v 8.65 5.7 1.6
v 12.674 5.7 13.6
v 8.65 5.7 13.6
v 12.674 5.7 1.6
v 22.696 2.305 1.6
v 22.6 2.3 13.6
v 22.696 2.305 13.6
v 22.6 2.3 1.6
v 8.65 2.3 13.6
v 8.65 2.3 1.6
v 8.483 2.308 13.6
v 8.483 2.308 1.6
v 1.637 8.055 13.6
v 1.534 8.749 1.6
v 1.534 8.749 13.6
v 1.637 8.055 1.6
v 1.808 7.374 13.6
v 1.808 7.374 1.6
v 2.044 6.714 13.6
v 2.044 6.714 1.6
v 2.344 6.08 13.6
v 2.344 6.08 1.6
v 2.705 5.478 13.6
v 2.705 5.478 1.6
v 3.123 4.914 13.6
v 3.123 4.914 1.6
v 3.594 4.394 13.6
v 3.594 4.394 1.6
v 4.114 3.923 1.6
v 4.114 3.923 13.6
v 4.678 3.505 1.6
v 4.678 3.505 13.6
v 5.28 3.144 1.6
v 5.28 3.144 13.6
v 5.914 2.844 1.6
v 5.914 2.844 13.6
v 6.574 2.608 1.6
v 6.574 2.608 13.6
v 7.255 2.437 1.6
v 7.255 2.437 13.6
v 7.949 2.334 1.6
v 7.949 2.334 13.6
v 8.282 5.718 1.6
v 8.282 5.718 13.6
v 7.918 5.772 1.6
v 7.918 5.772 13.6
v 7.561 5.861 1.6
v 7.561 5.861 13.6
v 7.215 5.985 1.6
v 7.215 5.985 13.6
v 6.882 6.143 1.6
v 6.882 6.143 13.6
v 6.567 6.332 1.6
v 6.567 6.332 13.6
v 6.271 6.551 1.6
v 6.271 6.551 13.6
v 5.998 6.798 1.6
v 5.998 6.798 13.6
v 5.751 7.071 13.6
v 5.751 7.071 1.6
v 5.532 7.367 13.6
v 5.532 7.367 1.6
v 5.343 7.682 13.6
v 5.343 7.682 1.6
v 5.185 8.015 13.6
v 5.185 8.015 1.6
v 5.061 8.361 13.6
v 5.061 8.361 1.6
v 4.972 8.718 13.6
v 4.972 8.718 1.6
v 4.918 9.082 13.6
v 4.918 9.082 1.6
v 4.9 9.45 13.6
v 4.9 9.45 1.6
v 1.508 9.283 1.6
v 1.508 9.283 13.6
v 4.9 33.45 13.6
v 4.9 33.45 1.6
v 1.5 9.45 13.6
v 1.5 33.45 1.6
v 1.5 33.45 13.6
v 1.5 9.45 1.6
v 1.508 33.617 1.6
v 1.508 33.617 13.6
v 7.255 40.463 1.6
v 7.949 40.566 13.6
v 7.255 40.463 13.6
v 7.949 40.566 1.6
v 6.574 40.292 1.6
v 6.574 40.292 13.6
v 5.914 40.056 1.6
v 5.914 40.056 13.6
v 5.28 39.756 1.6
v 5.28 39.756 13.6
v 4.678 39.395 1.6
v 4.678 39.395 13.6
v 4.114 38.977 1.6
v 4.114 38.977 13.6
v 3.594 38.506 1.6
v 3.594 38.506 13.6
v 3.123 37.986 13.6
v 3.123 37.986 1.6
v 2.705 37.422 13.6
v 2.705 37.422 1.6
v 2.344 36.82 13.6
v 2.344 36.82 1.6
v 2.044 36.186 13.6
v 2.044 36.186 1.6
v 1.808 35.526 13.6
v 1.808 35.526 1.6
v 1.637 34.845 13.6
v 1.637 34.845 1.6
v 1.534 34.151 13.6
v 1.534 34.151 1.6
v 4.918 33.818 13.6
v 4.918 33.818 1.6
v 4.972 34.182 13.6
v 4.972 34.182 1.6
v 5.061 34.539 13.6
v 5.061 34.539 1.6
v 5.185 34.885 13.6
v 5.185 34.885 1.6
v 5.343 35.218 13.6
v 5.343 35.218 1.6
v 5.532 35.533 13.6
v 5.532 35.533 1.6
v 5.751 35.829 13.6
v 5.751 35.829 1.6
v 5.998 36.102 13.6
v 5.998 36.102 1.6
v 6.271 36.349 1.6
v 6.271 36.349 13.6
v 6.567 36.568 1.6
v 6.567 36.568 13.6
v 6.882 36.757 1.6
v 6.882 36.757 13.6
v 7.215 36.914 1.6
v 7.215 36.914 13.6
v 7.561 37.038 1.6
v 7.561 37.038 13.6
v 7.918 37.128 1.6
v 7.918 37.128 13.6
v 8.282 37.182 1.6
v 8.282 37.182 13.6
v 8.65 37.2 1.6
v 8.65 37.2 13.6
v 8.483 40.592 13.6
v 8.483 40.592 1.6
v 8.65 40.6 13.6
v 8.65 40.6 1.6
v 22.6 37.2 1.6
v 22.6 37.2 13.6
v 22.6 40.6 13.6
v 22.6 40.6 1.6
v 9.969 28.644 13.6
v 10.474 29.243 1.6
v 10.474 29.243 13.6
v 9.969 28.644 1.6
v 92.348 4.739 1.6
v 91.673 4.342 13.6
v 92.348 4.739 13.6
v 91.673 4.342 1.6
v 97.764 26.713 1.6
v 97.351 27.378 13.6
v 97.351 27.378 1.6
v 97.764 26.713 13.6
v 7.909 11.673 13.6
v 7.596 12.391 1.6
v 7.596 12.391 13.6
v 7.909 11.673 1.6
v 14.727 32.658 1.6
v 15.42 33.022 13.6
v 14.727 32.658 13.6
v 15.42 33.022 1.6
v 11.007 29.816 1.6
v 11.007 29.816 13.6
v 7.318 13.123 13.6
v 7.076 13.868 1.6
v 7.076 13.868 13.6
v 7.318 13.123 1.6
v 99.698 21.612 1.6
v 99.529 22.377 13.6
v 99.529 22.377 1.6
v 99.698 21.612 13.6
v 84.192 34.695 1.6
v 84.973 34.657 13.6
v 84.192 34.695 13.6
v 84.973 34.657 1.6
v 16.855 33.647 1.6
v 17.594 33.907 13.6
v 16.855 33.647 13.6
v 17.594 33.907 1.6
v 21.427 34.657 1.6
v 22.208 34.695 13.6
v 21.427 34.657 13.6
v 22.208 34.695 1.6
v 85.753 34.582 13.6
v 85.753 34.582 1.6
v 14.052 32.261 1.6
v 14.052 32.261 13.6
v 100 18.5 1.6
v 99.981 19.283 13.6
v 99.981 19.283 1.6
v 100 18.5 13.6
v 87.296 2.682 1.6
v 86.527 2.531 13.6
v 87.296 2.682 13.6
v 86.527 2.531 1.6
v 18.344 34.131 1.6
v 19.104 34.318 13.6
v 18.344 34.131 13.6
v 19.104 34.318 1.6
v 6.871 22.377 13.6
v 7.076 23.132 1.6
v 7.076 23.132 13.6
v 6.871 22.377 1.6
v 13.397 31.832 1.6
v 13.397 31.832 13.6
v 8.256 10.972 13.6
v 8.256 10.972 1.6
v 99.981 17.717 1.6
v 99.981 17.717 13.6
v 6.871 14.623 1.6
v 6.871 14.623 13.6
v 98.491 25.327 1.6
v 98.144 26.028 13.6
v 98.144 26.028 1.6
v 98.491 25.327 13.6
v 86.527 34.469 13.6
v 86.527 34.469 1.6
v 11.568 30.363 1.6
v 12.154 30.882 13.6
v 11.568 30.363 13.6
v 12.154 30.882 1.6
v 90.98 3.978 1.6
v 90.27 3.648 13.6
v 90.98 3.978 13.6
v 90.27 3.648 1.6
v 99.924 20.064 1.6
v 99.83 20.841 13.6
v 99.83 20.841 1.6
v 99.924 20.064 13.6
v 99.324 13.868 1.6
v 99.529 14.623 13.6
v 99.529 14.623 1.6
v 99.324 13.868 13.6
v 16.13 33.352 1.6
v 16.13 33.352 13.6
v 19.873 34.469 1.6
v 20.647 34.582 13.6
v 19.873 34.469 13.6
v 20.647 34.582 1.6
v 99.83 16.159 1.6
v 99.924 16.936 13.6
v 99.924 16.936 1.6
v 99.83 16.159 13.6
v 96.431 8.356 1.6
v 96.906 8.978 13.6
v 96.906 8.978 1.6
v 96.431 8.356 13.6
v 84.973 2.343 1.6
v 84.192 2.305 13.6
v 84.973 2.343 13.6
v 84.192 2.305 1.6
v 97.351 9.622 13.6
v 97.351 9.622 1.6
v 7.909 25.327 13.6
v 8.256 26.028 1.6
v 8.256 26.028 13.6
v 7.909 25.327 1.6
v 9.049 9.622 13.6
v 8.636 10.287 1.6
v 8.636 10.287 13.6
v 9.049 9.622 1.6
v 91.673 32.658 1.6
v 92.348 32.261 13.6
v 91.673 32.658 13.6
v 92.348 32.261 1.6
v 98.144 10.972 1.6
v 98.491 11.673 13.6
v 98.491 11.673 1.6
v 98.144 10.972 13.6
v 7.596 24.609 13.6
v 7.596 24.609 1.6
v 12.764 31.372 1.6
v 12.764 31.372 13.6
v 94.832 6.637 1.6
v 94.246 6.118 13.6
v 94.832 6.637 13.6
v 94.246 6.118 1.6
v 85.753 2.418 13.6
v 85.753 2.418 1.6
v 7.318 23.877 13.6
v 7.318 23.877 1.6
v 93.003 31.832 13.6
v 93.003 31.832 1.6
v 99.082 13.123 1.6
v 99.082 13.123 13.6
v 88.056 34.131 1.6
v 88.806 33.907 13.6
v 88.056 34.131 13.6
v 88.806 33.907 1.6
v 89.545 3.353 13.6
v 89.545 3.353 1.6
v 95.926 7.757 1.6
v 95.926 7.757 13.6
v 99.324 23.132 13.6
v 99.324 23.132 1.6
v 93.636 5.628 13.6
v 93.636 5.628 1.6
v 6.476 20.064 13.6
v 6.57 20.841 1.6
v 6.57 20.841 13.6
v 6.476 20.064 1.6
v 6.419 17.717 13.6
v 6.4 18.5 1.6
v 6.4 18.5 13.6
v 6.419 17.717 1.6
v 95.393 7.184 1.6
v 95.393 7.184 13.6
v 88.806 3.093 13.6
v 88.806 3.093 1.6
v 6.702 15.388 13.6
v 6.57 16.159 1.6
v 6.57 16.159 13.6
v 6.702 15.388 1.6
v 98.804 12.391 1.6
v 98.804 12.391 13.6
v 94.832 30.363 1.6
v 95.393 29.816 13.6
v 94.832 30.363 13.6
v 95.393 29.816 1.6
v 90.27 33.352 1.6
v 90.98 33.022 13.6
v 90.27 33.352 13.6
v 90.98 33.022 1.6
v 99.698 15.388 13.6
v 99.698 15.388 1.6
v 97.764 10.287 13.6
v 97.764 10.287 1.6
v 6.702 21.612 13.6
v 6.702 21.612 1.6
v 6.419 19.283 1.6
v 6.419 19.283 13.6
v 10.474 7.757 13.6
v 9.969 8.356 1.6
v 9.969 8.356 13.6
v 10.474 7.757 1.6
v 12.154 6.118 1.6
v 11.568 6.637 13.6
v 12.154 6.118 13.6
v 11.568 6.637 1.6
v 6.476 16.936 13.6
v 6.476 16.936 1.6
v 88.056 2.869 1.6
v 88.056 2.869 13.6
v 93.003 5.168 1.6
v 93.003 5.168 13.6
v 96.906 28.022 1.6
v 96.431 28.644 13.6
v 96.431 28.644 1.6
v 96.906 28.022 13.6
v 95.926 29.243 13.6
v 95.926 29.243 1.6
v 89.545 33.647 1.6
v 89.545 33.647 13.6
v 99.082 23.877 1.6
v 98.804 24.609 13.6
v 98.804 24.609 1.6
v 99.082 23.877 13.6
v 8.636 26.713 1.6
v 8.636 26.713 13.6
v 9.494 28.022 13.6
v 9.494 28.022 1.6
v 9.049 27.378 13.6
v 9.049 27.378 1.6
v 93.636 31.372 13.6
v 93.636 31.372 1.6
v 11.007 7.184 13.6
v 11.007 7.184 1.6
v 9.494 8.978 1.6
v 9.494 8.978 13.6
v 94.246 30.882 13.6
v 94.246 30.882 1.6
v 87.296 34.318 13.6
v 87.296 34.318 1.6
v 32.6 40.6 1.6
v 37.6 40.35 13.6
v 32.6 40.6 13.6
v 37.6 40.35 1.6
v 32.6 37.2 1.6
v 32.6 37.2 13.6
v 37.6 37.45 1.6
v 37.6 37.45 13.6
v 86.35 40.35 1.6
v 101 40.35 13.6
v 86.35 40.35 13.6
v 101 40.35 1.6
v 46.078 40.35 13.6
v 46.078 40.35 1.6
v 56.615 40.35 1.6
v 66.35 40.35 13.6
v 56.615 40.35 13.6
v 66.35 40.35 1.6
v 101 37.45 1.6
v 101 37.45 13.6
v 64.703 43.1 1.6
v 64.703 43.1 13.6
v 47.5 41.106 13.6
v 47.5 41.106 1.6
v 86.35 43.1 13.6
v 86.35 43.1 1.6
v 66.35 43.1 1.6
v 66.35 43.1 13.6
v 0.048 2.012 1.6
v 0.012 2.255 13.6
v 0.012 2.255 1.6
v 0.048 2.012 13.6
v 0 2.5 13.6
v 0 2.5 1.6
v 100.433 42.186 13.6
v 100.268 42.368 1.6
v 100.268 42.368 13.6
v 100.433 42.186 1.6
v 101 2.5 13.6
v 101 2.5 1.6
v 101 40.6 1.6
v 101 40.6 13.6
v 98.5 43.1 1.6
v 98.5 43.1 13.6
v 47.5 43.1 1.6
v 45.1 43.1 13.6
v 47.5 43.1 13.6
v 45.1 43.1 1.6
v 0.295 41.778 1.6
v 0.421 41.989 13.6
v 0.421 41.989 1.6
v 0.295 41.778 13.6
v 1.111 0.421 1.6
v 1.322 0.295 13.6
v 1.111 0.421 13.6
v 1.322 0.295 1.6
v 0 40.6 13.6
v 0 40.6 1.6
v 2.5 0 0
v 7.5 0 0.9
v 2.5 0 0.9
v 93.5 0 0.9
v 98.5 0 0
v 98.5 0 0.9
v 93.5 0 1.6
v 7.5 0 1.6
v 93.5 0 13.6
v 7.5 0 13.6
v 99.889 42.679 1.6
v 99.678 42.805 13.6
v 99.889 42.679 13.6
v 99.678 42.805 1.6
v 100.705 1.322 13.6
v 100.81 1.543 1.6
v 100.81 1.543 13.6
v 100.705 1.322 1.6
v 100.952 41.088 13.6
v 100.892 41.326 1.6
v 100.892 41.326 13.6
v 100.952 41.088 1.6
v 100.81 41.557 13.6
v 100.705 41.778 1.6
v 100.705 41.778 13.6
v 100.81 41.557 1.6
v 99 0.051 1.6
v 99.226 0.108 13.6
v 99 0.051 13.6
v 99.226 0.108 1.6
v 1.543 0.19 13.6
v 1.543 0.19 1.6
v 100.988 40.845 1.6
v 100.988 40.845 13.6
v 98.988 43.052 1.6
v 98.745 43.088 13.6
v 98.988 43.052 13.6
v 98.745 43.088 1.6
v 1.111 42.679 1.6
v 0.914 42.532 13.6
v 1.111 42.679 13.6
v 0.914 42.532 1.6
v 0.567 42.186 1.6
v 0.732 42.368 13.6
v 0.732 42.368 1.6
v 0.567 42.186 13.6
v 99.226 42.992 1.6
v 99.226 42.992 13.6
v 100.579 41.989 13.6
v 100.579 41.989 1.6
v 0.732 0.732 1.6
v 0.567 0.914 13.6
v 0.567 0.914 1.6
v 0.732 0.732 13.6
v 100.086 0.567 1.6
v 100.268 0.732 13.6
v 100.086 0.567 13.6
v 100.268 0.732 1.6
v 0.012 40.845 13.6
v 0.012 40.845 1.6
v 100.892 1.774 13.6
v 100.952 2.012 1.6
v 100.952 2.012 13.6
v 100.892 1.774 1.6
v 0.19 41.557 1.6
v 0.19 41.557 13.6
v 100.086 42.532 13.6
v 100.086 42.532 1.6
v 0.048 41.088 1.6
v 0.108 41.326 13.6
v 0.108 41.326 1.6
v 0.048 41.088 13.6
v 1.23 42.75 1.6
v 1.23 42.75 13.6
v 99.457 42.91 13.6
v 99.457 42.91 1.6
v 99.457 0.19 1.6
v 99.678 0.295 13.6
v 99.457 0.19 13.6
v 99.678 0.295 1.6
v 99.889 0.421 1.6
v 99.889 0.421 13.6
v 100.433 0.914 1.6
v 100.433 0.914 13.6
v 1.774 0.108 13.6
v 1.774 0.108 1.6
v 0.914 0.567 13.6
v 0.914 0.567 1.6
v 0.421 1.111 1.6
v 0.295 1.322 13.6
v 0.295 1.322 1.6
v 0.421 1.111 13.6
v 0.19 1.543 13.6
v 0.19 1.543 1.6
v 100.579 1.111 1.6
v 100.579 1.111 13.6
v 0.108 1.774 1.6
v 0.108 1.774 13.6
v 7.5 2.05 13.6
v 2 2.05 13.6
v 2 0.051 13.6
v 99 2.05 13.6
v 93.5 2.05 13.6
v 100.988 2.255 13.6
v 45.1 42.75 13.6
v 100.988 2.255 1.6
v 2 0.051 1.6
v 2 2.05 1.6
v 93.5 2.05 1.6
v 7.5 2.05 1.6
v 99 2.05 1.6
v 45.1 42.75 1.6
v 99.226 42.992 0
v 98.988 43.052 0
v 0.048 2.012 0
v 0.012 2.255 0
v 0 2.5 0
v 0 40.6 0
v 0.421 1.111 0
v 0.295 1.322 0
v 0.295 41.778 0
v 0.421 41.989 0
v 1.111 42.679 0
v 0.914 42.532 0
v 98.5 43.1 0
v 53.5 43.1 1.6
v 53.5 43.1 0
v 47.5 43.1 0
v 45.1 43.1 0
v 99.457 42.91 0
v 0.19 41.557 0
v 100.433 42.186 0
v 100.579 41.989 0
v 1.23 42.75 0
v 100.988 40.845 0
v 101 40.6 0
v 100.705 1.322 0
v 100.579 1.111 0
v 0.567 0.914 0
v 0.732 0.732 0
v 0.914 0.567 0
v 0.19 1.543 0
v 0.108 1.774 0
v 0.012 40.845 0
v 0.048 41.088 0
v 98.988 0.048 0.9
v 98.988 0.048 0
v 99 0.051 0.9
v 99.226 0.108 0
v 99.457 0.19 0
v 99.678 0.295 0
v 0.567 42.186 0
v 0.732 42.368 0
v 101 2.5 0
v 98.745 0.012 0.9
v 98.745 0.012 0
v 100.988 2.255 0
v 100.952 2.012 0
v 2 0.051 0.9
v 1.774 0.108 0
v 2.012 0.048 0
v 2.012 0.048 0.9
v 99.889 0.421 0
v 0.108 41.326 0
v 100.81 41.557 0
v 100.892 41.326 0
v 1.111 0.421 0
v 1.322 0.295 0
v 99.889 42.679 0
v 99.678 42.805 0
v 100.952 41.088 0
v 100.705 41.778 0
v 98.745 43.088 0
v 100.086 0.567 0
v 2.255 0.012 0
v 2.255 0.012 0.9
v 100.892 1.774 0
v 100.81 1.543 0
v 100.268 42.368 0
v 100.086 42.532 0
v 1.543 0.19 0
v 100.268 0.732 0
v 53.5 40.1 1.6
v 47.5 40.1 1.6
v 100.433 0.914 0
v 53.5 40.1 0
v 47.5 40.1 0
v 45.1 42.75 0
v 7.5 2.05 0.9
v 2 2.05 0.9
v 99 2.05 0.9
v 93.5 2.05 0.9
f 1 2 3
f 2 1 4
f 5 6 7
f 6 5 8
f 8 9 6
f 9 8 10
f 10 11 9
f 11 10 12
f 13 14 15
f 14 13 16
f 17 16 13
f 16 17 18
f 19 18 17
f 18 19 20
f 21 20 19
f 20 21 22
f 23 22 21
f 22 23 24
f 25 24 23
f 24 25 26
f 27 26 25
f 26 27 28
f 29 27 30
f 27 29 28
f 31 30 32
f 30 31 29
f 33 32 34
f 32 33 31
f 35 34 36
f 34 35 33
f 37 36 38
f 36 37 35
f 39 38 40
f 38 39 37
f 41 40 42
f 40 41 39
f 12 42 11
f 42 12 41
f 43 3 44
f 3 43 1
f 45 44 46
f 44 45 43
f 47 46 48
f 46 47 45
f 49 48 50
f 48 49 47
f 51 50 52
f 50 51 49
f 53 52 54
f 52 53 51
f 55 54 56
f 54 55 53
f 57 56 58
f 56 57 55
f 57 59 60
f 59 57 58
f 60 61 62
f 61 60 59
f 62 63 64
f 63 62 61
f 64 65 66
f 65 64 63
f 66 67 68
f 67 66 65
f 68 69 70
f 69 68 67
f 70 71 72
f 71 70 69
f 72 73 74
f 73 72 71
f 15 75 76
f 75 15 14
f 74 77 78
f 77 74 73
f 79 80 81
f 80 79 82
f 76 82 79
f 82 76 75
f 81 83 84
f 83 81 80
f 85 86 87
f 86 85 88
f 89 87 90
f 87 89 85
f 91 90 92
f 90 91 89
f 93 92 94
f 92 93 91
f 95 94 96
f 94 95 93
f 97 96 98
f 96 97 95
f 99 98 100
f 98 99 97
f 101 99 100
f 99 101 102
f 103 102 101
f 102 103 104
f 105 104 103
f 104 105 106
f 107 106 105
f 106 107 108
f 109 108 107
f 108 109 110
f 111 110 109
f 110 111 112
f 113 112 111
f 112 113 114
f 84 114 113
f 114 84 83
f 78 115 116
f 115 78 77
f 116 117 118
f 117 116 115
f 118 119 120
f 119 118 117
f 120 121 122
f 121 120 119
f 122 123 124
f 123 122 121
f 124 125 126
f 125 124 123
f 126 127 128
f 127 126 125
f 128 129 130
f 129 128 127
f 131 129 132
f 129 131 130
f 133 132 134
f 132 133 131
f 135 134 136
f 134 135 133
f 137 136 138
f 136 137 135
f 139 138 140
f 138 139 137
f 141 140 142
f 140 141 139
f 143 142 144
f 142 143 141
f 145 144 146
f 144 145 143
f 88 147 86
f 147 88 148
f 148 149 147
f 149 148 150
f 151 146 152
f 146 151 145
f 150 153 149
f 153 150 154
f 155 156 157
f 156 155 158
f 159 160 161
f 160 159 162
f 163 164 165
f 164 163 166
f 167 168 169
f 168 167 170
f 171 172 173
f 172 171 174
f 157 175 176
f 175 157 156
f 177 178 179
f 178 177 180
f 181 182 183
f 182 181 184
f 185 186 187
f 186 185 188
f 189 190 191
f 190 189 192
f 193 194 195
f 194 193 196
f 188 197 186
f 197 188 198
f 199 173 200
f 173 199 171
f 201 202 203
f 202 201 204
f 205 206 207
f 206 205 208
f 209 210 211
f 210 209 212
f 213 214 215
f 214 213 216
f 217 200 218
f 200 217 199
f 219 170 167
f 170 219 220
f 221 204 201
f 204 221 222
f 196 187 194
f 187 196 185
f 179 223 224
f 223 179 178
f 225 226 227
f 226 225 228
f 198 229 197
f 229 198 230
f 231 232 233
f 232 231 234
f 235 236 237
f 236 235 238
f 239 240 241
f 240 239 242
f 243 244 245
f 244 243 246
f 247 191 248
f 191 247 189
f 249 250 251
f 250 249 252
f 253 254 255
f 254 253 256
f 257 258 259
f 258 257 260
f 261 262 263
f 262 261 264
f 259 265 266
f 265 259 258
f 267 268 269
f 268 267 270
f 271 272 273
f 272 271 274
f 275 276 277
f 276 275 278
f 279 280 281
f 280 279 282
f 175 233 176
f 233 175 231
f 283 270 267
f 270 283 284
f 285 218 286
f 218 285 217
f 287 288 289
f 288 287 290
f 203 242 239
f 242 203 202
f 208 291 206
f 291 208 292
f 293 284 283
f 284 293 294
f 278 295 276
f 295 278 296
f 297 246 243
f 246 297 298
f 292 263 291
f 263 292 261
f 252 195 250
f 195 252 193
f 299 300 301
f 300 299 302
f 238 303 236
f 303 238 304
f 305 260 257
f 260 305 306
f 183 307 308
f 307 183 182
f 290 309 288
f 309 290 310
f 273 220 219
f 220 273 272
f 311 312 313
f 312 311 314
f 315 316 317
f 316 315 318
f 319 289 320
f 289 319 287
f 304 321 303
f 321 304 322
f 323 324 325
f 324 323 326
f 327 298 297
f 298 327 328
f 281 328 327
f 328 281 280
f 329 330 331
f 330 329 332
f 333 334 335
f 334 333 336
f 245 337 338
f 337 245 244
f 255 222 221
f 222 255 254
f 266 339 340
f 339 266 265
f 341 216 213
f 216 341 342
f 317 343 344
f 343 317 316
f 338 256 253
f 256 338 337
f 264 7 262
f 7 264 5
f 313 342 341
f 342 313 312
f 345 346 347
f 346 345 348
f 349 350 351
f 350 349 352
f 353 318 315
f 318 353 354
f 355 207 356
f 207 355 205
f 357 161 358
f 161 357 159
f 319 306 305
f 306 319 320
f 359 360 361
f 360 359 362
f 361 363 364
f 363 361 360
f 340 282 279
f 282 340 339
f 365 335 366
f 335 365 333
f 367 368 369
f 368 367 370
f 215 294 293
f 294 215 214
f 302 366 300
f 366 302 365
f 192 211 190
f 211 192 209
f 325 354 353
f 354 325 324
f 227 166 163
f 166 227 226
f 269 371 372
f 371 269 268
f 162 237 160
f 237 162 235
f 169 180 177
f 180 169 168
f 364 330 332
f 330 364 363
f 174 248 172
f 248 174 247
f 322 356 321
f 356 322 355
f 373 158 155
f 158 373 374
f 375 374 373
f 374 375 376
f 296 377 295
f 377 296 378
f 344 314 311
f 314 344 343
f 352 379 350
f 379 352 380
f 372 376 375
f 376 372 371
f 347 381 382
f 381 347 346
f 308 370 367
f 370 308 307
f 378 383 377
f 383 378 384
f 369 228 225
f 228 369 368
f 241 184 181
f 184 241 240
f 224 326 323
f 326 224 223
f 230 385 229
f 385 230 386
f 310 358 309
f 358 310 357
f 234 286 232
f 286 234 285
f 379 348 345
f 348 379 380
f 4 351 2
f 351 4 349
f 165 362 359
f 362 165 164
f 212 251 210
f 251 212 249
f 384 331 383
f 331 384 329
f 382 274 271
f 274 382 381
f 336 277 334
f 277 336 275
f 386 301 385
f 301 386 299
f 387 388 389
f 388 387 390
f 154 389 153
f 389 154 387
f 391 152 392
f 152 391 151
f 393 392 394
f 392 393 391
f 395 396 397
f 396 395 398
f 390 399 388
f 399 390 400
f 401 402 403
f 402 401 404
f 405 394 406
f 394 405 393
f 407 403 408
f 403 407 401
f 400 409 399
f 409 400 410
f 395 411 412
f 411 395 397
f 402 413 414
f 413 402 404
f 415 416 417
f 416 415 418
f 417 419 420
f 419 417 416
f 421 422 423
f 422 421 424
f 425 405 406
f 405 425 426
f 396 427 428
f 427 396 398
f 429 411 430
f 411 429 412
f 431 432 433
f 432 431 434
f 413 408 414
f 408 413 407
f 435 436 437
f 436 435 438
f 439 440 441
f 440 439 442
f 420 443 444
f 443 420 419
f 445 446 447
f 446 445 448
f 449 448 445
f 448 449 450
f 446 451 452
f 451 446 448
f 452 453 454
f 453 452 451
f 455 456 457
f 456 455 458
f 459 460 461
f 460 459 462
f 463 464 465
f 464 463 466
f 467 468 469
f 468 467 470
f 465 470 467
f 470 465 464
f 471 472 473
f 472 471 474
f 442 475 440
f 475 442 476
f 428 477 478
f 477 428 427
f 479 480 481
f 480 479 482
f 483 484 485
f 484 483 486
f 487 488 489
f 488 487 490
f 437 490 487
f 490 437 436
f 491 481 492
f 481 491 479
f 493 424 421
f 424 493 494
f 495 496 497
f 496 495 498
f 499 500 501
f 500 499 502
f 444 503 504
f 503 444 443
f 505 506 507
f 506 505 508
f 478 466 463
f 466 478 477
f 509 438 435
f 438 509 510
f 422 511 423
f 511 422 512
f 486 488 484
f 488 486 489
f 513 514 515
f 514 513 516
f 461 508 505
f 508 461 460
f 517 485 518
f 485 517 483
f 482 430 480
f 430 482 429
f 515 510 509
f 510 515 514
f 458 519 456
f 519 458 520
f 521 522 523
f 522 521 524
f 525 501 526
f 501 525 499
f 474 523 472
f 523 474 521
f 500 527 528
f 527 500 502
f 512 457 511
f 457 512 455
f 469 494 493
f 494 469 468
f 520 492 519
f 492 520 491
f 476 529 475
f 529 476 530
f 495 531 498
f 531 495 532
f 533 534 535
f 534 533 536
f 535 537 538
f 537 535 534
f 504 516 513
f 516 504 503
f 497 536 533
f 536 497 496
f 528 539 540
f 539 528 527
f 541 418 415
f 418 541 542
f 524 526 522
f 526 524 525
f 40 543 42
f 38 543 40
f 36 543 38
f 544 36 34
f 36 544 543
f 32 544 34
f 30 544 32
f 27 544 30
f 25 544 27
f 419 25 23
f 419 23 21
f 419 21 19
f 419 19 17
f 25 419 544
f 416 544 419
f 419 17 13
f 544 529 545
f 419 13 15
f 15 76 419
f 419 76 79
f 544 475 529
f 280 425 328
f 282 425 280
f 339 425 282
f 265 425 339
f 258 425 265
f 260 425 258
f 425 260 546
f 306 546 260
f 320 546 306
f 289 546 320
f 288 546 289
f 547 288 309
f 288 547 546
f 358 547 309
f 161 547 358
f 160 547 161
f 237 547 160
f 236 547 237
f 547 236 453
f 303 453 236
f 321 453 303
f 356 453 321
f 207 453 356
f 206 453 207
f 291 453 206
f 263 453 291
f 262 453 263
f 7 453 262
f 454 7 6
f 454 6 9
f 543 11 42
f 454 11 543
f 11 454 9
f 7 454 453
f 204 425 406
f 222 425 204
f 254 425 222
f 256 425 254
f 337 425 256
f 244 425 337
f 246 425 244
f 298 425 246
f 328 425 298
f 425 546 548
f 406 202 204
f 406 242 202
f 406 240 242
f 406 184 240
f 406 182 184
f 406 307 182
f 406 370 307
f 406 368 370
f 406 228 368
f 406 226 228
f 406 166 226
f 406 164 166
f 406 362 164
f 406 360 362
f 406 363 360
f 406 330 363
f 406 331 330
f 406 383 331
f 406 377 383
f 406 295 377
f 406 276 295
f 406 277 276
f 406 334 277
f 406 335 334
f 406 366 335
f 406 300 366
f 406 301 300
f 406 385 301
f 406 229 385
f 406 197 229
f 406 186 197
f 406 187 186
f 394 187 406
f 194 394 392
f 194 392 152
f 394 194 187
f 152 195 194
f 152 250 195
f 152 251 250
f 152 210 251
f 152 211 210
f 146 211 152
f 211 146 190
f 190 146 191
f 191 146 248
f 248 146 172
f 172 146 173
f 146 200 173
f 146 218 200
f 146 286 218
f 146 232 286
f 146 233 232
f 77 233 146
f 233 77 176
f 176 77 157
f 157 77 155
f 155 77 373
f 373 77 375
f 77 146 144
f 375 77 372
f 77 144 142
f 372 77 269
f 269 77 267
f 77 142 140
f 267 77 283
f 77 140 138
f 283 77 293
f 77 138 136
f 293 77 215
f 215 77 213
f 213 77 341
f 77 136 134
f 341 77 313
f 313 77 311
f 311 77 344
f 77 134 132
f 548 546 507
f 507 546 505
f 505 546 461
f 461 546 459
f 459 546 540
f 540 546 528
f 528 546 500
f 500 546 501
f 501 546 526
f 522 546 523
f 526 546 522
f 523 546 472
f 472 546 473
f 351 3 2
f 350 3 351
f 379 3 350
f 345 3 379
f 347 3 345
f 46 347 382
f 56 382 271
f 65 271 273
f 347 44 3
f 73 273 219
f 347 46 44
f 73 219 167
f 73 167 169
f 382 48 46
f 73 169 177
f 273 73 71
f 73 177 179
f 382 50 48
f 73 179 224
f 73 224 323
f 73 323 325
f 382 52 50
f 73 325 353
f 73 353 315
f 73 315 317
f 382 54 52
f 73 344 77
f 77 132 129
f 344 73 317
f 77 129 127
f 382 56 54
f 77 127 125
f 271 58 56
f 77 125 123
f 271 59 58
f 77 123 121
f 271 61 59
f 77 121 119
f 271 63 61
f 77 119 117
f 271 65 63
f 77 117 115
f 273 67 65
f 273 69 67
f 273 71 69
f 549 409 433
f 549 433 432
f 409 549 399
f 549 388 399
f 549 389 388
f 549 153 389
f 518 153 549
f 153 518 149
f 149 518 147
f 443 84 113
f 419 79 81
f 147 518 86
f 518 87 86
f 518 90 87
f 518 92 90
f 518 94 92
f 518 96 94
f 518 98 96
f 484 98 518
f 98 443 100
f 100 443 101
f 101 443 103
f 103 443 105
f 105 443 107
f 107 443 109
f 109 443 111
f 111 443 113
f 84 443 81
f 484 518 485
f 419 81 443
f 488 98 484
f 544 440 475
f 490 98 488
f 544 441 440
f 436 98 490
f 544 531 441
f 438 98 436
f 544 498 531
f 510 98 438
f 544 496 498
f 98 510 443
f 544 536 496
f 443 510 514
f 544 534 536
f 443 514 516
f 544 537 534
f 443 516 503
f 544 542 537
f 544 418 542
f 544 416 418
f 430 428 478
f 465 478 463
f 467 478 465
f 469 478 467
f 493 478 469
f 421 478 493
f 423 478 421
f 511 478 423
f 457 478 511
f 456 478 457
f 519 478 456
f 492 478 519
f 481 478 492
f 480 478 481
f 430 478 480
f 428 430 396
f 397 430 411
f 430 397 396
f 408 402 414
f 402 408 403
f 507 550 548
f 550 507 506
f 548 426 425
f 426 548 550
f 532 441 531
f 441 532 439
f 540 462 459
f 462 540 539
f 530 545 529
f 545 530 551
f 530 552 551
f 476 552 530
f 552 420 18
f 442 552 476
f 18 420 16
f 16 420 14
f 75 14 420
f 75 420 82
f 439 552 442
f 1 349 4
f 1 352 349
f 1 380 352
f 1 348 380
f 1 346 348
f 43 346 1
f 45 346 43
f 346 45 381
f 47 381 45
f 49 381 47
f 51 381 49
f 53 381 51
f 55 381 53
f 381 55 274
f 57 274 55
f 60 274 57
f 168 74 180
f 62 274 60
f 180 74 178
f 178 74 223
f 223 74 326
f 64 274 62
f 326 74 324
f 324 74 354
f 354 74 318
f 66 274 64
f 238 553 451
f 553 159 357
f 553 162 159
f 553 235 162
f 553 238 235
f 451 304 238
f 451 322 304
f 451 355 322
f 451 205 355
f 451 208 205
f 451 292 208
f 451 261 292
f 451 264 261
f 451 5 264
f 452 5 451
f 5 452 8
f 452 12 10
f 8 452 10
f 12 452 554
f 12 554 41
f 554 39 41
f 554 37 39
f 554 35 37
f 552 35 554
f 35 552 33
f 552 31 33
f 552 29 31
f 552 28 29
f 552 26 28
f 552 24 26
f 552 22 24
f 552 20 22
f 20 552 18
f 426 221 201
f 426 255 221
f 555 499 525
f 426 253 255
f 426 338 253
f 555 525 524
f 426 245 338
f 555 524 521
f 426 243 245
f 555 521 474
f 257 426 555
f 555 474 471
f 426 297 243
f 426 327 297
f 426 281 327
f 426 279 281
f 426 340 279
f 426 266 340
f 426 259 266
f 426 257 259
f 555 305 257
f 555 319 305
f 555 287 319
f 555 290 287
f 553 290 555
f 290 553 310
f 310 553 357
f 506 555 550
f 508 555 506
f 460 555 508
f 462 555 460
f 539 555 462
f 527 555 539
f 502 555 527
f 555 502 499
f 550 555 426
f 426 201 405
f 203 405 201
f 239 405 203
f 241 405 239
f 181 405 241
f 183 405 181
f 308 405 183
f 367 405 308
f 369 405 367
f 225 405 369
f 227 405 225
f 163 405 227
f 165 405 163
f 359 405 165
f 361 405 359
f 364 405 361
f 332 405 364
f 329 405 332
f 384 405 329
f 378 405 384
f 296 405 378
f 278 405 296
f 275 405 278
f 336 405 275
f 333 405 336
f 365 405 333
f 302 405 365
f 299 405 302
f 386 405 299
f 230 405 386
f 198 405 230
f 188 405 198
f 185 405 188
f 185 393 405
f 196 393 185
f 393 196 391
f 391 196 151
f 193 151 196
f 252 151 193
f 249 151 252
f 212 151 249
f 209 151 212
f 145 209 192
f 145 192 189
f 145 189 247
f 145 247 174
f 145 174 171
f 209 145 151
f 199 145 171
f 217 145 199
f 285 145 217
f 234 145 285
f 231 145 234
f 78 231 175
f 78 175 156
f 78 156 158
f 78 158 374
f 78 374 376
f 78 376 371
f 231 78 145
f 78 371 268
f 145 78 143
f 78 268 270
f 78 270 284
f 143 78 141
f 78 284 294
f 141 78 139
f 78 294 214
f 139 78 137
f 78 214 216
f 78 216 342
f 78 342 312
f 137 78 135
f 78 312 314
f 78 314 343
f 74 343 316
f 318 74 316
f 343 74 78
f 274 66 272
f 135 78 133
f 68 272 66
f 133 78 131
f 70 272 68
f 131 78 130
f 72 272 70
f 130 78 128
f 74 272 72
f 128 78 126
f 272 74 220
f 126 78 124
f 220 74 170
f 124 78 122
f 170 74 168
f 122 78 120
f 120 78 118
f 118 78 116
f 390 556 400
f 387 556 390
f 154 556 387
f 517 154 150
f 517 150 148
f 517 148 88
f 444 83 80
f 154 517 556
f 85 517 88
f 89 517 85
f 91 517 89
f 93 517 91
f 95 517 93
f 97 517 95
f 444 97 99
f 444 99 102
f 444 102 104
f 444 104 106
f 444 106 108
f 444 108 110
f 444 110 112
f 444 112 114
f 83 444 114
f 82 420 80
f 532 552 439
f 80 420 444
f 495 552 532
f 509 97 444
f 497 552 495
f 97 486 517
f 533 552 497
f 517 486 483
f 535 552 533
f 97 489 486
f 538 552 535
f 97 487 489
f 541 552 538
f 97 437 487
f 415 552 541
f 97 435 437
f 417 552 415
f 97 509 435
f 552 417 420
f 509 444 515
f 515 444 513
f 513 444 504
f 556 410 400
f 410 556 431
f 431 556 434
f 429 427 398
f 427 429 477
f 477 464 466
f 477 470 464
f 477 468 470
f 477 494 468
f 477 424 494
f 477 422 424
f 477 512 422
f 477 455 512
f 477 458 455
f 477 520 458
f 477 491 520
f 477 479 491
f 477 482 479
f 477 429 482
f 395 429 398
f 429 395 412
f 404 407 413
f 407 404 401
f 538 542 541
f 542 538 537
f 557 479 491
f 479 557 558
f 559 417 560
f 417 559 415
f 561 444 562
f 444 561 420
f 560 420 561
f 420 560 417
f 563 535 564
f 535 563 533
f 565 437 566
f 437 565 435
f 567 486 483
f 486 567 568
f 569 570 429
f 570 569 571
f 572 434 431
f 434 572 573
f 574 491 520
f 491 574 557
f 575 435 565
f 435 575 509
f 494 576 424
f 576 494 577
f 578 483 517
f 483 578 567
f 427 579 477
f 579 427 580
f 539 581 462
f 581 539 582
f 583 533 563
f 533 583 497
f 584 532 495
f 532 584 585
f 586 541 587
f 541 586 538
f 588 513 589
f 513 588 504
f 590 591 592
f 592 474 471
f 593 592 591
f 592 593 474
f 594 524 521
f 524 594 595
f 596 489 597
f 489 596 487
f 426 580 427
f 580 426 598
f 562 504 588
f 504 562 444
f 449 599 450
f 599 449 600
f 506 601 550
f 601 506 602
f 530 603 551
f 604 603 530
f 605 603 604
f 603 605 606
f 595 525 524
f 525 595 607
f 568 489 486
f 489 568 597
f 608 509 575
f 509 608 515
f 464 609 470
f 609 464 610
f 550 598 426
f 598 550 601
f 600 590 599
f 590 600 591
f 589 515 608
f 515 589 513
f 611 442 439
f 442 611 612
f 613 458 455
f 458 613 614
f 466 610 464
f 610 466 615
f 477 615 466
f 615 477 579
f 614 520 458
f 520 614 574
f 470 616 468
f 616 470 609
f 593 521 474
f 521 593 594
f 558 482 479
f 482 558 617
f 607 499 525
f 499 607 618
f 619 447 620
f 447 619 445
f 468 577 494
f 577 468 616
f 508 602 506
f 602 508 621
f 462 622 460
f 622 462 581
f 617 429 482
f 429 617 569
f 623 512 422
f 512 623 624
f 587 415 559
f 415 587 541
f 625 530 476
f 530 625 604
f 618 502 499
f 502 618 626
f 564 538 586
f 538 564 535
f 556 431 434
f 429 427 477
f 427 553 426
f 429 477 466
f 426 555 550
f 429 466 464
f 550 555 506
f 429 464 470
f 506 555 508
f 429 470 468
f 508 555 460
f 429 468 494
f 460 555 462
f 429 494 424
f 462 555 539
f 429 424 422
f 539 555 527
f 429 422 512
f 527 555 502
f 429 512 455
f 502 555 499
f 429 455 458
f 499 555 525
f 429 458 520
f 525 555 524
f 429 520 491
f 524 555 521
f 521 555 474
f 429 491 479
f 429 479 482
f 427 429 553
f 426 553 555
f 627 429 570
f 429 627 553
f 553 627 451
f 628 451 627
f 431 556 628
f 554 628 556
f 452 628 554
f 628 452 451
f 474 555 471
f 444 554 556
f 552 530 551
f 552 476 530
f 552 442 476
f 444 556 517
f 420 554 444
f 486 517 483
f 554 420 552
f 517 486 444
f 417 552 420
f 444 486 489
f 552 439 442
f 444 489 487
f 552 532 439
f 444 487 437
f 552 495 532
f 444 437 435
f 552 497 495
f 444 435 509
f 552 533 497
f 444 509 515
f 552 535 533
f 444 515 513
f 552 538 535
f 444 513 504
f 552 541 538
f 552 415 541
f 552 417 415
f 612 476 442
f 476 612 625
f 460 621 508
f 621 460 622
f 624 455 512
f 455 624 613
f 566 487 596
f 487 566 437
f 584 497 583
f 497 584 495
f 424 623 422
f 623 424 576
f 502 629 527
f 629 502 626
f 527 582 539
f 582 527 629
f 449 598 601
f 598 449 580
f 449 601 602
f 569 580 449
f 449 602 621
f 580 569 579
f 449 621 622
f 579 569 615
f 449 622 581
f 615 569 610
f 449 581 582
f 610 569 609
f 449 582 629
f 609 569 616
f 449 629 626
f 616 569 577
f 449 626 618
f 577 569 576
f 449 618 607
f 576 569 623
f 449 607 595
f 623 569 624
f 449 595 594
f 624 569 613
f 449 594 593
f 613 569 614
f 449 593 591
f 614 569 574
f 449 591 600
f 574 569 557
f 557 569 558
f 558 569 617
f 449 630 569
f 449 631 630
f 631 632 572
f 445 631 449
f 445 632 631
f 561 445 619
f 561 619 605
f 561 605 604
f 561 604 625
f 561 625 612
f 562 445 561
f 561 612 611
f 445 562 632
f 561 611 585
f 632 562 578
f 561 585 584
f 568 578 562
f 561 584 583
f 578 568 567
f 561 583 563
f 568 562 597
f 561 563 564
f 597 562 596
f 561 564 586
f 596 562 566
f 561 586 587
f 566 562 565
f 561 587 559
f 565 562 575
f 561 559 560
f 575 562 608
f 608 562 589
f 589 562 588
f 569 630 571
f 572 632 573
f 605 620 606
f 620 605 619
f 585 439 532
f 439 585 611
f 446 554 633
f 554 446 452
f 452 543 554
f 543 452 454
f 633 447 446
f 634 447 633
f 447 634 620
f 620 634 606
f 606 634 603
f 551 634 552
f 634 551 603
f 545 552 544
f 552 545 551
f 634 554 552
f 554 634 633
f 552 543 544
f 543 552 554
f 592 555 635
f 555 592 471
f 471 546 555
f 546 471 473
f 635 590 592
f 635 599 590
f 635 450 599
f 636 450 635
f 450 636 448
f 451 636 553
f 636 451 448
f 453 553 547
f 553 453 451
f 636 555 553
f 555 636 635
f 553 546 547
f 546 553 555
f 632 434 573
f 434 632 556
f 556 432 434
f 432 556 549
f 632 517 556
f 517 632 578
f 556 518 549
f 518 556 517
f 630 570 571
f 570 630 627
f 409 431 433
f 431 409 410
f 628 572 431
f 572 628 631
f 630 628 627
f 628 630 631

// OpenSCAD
module Path(){
  translate([0, 0, -0.002])union(){
      translate([0, 0, -0.002])hull(){
          translate([0, 0, -0.002])cylinder(d=3.4,h=13.008,$fn=64);
          translate([-13.95, 0, -0.002])cylinder(d=3.4,h=13.008,$fn=64);
        }

      translate([-13.95, 0, -0.002])linear_extrude(height=13.004)translate([0, 5.45, 0])rotate([0, 0, 180])intersection(){
                difference(){
                  circle(d=14.3,$fn=64);
                  circle(d=7.5,$fn=64);
                }

                polygon(points=[[0, 0], [0, 0.143e2], [0.143e2, 0.875622461390357538e-15]],convexity=10);
              }

      translate([0, 0, -0.002])hull(){
          translate([-19.4, 5.449999999999998, -0.002])cylinder(d=3.4,h=13.008,$fn=64);
          translate([-19.4, 29.45000000000001, -0.002])cylinder(d=3.4,h=13.008,$fn=64);
        }

      translate([-19.4, 29.45000000000001, -0.002])linear_extrude(height=13.004)translate([5.45, 0, 0])rotate([0, 0, 90])intersection(){
                difference(){
                  circle(d=14.3,$fn=64);
                  circle(d=7.5,$fn=64);
                }

                polygon(points=[[0, 0], [0, 0.143e2], [0.143e2, 0.875622461390357538e-15]],convexity=10);
              }

      translate([0, 0, -0.002])hull(){
          translate([-13.950000000000001, 34.900000000000006, -0.002])cylinder(d=3.4,h=13.008,$fn=64);
          translate([-6.674325055353074e-16, 34.900000000000006, -0.002])cylinder(d=3.4,h=13.008,$fn=64);
        }

    }
}
module GridSegment_extra_w_1_0_extra_len_2_h_1_5_w_2_08_repeat_x_2_repeat_y_1_lid_extra_w_1_0_lid_extra_h_0_4_no_bottom_true(){
  translate([25.85, 25.85, 0])union(){
      translate([0, 0, 45])%linear_extrude(height=1)union(){
            translate([-25.85, -25.85, 0])square([51.7, 51.7]);
            translate([-25.85, -25.85, 0])square([51.7, 51.7]);
            translate([27.85, -25.85, 0])square([51.7, 51.7]);
          }

      translate([0, 0, 41.5])color("blue")linear_extrude(height=3.5)union(){
              translate([-21.6, 22.95, 0])square([43.2, 2.2]);
              translate([-21.6, -25.15, 0])square([43.2, 2.2]);
              translate([22.95, -21.6, 0])square([2.2, 43.2]);
              translate([-25.15, -21.6, 0])square([2.2, 43.2]);
              union(){
                translate([-21.6, 22.95, 0])square([43.2, 2.2]);
                translate([-21.6, -25.15, 0])square([43.2, 2.2]);
                translate([22.95, -21.6, 0])square([2.2, 43.2]);
                translate([-25.15, -21.6, 0])square([2.2, 43.2]);
              }

              translate([53.7, 0, 0])union(){
                  translate([-21.6, 22.95, 0])square([43.2, 2.2]);
                  translate([-21.6, -25.15, 0])square([43.2, 2.2]);
                  translate([22.95, -21.6, 0])square([2.2, 43.2]);
                  translate([-25.15, -21.6, 0])square([2.2, 43.2]);
                }

            }

    }
}
module SmdDispenser_strip_h_12_strip_w_2_5(){
  difference(){
    color("pink")union(){
        translate([0, 0, 1.6])difference(){
            union()linear_extrude(height=12)translate([2.5, 2.5, 0])hull(){
                    circle(d=5,$fn=64);
                    translate([96, 0, 0])circle(d=5,$fn=64);
                    translate([0, 38.1, 0])circle(d=5,$fn=64);
                    translate([96, 38.1, 0])circle(d=5,$fn=64);
                  }

            translate([22.6, 38.900000000000006, -0.002])union(){
                translate([6.674325055353074e-16, -34.900000000000006, -0.002])union(){
                    translate([0, 0, -0.002])Path();
                    translate([0, 14.5, 0])hull(){
                        translate([0, 0, -0.1])cylinder(d=32.4,h=13.208,$fn=130);
                        translate([61.2, 0, -0.1])cylinder(d=32.4,h=13.408,$fn=130);
                      }

                  }

                translate([0, 0, -0.004])hull(){
                    translate([0, -1.7, -0.004])cube([10, 3.4, 12.016]);
                    translate([5, -1.45, -0.004])cube([10, 2.9, 12.016]);
                  }

                translate([0, -1.45, -0.004])color("blue")cube([101, 2.9, 12.016]);
                translate([29.75, 0, -0.004])linear_extrude(height=12.008)hull(){
                      translate([7, 8.5, 0])square([18, 0.001]);
                      translate([-9, 0, 0])square([9, 0.001]);
                    }

                translate([43.75, 0, -0.1])cube([20, 10.2, 13.208]);
              }

          }

        union()linear_extrude(height=1.6)translate([2.5, 2.5, 0])hull(){
                circle(d=5,$fn=64);
                translate([96, 0, 0])circle(d=5,$fn=64);
                translate([0, 38.1, 0])circle(d=5,$fn=64);
                translate([96, 38.1, 0])circle(d=5,$fn=64);
              }

      }

    translate([-0.1, 42.75, -0.1])color("silver")cube([45.2, 0.5, 14.8]);
    translate([0, 0, 1])color("Aquamarine")union(){
          translate([2, 0, -0.1])cube([5.5, 2.05, 14.8]);
          translate([93.5, 0, -0.1])cube([5.5, 2.05, 15]);
        }

    translate([0, 0, -5])mirror([])rotate([90, 0, 0])translate([-2.40000000000001, 0, -1.5])GridSegment_extra_w_1_0_extra_len_2_h_1_5_w_2_08_repeat_x_2_repeat_y_1_lid_extra_w_1_0_lid_extra_h_0_4_no_bottom_true();
    translate([47.5, 40.1, -0.002])color("purple")cube([6, 6, 13.608]);
  }
}
$fn=64;
SmdDispenser_strip_h_12_strip_w_2_5();
